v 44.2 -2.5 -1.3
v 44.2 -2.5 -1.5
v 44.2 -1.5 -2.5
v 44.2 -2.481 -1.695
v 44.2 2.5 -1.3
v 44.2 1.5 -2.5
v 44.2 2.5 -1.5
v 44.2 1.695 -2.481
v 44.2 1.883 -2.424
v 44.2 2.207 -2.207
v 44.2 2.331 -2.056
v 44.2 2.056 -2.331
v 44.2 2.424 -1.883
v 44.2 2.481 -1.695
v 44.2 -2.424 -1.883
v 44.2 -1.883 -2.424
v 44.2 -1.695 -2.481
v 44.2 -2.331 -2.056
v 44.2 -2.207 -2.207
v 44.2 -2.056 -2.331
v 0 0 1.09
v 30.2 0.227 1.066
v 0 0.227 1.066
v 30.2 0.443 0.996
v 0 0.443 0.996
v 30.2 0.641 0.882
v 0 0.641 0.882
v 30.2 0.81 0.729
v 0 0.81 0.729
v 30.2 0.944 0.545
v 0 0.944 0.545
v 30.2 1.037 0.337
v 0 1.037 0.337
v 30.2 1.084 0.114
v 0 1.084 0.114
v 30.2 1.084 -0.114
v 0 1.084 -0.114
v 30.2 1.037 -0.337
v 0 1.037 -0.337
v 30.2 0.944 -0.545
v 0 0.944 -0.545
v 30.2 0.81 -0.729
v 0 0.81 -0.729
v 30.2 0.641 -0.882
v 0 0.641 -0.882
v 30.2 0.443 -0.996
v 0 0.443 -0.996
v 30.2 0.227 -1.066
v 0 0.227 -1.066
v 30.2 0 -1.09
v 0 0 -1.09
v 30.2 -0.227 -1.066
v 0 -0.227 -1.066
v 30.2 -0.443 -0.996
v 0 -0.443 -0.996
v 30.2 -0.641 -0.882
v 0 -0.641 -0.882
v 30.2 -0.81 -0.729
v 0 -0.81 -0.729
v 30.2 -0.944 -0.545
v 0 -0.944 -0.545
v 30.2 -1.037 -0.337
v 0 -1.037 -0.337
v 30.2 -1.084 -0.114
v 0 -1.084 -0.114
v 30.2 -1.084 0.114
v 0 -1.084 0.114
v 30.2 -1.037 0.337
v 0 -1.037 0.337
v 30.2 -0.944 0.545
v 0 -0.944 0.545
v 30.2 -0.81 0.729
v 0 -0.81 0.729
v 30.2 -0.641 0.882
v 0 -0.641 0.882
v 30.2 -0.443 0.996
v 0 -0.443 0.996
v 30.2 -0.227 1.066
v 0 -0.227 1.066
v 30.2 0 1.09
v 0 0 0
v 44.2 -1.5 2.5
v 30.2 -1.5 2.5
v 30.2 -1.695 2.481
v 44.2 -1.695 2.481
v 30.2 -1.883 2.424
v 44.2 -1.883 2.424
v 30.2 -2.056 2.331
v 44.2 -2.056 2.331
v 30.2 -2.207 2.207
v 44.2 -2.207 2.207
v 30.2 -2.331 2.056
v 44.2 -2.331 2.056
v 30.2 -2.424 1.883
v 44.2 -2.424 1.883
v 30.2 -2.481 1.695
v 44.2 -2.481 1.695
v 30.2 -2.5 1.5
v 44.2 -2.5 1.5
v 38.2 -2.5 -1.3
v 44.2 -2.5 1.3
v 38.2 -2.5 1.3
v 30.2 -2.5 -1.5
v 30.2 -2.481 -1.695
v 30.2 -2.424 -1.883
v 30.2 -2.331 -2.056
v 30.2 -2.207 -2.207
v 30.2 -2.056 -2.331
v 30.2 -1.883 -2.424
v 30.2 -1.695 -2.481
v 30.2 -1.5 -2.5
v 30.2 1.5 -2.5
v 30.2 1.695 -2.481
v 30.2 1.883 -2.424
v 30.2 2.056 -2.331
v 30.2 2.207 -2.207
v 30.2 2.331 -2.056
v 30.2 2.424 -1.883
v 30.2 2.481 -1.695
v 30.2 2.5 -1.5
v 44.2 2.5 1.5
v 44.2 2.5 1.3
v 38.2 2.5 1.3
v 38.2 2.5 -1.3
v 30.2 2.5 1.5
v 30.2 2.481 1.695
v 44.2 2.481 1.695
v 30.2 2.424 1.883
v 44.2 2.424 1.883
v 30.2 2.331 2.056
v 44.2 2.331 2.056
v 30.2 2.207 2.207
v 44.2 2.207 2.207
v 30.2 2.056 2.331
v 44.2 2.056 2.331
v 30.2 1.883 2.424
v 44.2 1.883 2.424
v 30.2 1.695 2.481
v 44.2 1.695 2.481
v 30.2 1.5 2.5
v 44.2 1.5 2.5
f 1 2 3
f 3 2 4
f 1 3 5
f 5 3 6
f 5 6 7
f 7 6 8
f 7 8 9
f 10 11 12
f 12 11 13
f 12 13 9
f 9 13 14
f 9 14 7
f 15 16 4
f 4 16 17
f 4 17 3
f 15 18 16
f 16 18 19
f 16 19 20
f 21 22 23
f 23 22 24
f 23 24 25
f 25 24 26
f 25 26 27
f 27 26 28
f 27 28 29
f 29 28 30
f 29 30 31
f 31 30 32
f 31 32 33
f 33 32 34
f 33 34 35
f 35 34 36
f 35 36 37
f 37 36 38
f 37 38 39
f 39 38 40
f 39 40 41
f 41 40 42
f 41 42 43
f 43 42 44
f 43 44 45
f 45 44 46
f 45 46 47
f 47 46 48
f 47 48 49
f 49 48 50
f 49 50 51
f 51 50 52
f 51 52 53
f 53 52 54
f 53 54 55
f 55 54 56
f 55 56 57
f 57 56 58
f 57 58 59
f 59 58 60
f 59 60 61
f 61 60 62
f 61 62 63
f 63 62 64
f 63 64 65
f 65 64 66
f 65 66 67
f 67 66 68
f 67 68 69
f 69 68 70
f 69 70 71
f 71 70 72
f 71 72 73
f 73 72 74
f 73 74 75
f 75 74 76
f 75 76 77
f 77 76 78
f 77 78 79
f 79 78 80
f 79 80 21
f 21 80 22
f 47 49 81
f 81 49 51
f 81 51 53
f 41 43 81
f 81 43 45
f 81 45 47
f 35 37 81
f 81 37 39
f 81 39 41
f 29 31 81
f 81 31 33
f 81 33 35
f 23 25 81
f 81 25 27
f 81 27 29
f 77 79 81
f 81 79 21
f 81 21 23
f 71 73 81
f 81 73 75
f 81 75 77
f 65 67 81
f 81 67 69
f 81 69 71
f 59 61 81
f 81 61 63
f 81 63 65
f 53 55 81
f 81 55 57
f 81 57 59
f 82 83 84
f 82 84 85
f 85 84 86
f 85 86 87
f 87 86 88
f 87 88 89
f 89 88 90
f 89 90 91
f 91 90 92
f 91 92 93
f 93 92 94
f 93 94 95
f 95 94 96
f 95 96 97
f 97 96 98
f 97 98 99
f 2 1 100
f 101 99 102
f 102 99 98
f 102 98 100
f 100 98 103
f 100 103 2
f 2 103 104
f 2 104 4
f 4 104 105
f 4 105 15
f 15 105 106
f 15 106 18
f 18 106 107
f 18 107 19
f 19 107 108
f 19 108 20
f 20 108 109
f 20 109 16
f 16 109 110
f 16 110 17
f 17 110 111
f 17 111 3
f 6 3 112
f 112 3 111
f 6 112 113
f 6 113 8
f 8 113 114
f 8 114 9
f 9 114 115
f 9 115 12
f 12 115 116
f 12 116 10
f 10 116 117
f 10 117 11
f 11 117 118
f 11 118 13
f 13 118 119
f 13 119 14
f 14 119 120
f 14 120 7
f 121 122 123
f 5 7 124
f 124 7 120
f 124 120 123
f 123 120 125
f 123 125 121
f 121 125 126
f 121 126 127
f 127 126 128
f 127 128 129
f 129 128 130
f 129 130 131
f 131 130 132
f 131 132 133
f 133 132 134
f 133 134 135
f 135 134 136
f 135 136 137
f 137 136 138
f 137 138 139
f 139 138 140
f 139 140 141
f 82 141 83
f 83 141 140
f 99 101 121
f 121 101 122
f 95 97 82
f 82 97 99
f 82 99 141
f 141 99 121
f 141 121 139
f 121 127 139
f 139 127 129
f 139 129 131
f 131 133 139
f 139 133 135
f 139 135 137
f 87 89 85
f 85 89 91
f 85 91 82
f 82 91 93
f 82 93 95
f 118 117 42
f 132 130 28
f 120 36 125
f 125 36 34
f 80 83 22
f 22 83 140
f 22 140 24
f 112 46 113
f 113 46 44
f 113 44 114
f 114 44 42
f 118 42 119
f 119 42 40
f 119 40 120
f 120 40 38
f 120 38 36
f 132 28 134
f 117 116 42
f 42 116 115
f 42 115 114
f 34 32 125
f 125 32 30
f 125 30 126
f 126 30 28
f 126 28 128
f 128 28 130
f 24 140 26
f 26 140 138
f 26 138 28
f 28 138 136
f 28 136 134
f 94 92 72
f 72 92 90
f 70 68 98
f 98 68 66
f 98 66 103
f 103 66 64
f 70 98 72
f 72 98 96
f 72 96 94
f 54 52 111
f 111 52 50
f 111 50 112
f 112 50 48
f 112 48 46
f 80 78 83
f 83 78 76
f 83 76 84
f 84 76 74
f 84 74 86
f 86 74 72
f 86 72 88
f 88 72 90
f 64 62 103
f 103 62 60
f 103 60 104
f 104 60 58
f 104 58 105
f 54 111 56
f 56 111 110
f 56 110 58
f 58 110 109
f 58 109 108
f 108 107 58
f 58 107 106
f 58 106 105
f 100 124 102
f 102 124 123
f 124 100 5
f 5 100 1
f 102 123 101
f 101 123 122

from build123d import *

# Parameters (mm, degrees)
SKETCH1_R               = 1.09
BOSS_EXTRUDE1_DEPTH     = 32.2
BOSS_EXTRUDE2_DEPTH     = 14
CUT_EXTRUDE1_DEPTH      = 45.341177251
CUT_EXTRUDE1_DEPTH_BACK = 45.341177251
SKETCH3_W               = 7
SKETCH3_H               = 2.6


with BuildPart() as part:
    # Sketch1 → Boss-Extrude1 (new body)
    with BuildSketch(Plane(origin=(0, 0, 0), x_dir=(0, 0, -1), z_dir=(1, 0, 0))):
        Circle(SKETCH1_R)
    extrude(amount=BOSS_EXTRUDE1_DEPTH)

    # Sketch2 → Boss-Extrude2 (add)
    with BuildSketch(Plane(origin=(30.2, 0, 0), x_dir=(0, 0, -1), z_dir=(1, 0, 0))):
        with BuildLine():
            Line((-1.5, -2.5), (1.5, -2.5))
            ThreePointArc((1.5, -2.5), (2.207106781, -2.207106781), (2.5, -1.5))
            Line((2.5, -1.5), (2.5, 1.5))
            ThreePointArc((2.5, 1.5), (2.207106781, 2.207106781), (1.5, 2.5))
            Line((1.5, 2.5), (-1.5, 2.5))
            ThreePointArc((-1.5, 2.5), (-2.207106781, 2.207106781), (-2.5, 1.5))
            Line((-2.5, 1.5), (-2.5, -1.5))
            ThreePointArc((-2.5, -1.5), (-2.207106781, -2.207106781), (-1.5, -2.5))
        make_face()
    extrude(amount=BOSS_EXTRUDE2_DEPTH)

    # Sketch3 → Cut-Extrude1 (cut, two sides: drawn at the far end of the back side and taken through both)
    with BuildSketch(Plane(origin=(0, 0, 0), x_dir=(1, 0, 0), z_dir=(0, 1, 0)).offset(-CUT_EXTRUDE1_DEPTH_BACK)):
        with Locations((41.7, 0)):
            Rectangle(SKETCH3_W, SKETCH3_H)
    extrude(amount=CUT_EXTRUDE1_DEPTH + CUT_EXTRUDE1_DEPTH_BACK, mode=Mode.SUBTRACT)


solid = part.part
